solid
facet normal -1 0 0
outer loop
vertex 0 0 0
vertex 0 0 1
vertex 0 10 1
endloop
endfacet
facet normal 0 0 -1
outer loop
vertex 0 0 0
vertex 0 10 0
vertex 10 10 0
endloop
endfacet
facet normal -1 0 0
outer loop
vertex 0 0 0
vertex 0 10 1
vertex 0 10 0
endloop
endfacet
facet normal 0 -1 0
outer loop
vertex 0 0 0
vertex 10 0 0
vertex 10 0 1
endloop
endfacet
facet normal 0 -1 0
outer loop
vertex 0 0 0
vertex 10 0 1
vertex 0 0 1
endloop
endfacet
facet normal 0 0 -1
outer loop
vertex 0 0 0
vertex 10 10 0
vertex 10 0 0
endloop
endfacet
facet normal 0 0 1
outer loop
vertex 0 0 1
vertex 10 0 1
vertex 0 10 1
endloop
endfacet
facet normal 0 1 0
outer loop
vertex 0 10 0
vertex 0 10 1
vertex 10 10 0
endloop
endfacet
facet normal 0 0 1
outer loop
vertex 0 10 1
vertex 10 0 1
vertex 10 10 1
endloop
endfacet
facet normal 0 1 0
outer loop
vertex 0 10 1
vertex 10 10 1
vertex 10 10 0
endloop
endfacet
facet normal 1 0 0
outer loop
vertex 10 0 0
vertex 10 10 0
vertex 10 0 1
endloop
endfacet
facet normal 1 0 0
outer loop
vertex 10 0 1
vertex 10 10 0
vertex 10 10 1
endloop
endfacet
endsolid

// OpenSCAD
/* Warning, this is a very basic generator with a lot of approximation 
input data : [TFBGA, 7GX, 10x10x1.0mm, 169, , D, C04-00377D]
generated by com.zoubworld.electronics.cad.model3d.Basic
Date : Sun Feb 15 10:50:48 CET 2026
*/

//body
color("black")
translate([0,0,0])
cube([10.0,10.0,1.0], center=false);
